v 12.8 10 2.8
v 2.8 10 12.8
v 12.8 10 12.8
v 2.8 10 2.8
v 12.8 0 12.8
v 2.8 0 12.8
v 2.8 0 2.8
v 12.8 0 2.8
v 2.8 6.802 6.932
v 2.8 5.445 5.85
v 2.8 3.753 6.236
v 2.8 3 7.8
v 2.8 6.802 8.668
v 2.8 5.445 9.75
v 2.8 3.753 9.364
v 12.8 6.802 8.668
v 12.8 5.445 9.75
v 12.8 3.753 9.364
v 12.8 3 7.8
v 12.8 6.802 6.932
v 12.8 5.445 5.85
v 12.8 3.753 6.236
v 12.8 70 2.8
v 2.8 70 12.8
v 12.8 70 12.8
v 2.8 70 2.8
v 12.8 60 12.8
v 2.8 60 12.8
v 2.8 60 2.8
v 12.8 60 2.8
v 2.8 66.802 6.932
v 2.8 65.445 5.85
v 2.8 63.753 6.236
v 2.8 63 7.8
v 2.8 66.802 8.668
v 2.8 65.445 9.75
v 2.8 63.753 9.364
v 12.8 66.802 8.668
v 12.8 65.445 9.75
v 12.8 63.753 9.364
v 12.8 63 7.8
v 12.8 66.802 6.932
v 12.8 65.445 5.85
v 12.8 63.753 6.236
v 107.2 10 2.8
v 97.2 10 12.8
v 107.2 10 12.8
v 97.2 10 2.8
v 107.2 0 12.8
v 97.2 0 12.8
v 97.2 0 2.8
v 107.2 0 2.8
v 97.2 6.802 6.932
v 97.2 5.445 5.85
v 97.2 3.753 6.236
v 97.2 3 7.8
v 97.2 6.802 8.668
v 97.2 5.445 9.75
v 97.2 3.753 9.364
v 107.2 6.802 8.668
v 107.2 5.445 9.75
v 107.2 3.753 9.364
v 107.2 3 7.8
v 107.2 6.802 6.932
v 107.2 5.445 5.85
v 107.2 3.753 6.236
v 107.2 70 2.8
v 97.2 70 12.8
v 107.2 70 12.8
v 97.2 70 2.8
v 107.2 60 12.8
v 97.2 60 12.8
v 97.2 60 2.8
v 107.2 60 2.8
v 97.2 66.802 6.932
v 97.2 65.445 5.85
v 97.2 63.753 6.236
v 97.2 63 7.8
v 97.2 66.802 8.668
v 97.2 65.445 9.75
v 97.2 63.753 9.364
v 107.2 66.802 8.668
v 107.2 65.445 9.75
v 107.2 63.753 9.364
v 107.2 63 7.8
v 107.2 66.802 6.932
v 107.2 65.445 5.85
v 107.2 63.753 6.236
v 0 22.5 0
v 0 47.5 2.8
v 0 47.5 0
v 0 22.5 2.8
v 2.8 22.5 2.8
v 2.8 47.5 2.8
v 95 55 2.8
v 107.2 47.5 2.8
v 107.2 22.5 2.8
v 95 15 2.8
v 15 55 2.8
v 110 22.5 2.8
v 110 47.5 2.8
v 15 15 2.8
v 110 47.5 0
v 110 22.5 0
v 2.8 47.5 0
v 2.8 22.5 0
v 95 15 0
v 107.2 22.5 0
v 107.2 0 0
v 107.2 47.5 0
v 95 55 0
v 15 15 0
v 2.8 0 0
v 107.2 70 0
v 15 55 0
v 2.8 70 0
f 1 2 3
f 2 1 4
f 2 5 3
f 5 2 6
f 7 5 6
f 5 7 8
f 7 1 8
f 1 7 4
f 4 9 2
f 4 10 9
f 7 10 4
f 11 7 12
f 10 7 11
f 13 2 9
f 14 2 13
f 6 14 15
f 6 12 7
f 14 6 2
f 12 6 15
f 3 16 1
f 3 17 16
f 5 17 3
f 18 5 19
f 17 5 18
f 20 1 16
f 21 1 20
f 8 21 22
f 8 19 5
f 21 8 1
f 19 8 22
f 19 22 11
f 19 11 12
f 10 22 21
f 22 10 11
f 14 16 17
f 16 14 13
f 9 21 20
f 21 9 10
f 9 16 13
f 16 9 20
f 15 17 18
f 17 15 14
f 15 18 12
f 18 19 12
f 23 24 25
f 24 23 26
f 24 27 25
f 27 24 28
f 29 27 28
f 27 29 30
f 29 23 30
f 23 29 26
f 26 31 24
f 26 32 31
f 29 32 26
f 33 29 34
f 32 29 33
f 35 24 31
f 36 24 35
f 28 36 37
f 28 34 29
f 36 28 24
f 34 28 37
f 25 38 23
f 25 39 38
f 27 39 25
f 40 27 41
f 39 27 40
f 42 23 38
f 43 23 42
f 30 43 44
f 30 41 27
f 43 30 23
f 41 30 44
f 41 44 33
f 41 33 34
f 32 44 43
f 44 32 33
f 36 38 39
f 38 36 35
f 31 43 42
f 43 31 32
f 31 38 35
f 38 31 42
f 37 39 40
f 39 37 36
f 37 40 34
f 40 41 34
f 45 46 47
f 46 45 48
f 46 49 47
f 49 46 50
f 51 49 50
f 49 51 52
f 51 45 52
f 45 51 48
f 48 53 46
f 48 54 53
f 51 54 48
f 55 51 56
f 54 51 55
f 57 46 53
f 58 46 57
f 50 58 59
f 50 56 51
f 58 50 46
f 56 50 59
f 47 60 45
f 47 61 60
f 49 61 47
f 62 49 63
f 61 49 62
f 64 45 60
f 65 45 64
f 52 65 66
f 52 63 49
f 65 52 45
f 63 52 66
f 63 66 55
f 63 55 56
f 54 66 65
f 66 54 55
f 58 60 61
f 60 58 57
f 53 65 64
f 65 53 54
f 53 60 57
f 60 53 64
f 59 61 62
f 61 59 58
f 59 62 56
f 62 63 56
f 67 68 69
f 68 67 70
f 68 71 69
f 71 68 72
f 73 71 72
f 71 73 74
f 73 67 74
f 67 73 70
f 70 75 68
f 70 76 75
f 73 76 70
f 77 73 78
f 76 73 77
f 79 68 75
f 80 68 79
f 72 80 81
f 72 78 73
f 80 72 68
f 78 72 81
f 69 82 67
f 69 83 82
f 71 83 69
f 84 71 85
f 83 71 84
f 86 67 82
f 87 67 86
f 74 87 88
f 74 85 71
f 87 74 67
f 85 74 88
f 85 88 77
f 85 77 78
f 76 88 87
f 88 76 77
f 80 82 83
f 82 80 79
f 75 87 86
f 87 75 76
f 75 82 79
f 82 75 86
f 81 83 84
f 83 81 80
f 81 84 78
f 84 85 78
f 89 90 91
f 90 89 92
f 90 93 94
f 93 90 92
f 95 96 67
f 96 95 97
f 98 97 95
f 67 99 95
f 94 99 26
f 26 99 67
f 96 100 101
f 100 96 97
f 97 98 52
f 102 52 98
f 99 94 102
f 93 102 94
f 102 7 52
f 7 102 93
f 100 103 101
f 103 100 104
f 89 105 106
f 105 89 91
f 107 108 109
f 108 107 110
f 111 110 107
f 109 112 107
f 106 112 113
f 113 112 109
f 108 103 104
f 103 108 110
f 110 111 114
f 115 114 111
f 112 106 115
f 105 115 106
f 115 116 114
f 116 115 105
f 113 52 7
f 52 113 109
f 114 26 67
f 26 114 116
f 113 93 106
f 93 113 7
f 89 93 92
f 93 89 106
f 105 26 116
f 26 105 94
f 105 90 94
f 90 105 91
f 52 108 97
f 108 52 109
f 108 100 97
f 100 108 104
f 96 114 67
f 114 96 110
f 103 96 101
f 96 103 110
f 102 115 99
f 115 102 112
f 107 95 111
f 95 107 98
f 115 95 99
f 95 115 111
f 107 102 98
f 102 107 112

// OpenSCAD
// file: modules.scad
thickness = 3;
ultrasonic_hole_radius = 8.25;
ultrasonic_hole_distance = 25.5;
pin_side = 2.5;



module roundExtract(pos_x, pos_y, radius) {
     translate([pos_x, pos_y,0]) 
		cylinder(h = thickness, r = radius);
 }

module squareExtract(pos_x, pos_y, width, length) {
	translate([pos_x, pos_y,0])
		cube(size = [width, length, thickness]);
}

module ultrasonicExtract(pos_x, pos_y, rotation) {
	translate([pos_x,pos_y,0]){
		rotate([0,0,rotation]) {
			union(){ 
				translate([0,0,0])
					cylinder(h = thickness, r = ultrasonic_hole_radius);
				translate([ultrasonic_hole_distance,0,0])
					cylinder(h = thickness, r = ultrasonic_hole_radius);
				translate([ultrasonic_hole_distance/2-3.75,-9,0])
					cube(size = [7.5, 2, thickness]);
				translate([ultrasonic_hole_distance/2-4.75,6,0])
					cube(size = [10, 4, thickness]);
			}
		}
	}
}

module IMUExtract(pos_x,pos_y, rotation) {
	translate([pos_x,pos_y,0]){
		rotate([0,0,rotation]) {
			union(){ 
				roundExtract(13,3,2);
				roundExtract(13,25,2);
				squareExtract(0,0,pin_side,pin_side*11);
			}
		}
	}
}

module stepperExtraction(pos_x,pos_y, rotation) {
	translate([pos_x,pos_y,0]){
		rotate([0,0,rotation]) {
			union(){ 
				roundExtract(14,9,2);
				roundExtract(10,33,2);
				squareExtract(1.5,1.5,pin_side,pin_side*3);//3 pins
				squareExtract(20-pin_side-1.5,1.5,pin_side,pin_side*2);//2 pin
				squareExtract(20-pin_side-1.5,32,pin_side,pin_side*4);//4 pins
			}
		}
	}

}

module screwAttach(pos_x, pos_y, pos_z, width, length, height, rotation) {
translate([pos_x,pos_y, pos_z]){
		rotate([0,0,rotation]) {
			difference(){ 
				cube(width,length,height);
				translate([width/2, 0,height/2]) {
					rotate([270,0,0]) {
						cylinder(h = 10, r=2);
					}
				}
				
			}
		}
	}


}
// main file
include <modules.scad>;

width = 110;
height = 70;
thickness = 2.8;
plate_fill_width = 22.5;
raspberry_hole_radius = 1.3;


difference() {
	cube(size = [width, height, thickness],center=false);

	squareExtract(0,0, thickness, plate_fill_width);		
	squareExtract(0,height-plate_fill_width,thickness, plate_fill_width);
	squareExtract(width-thickness,0,thickness, plate_fill_width);	
	squareExtract(width-thickness,height-plate_fill_width,thickness, plate_fill_width);
	squareExtract(15,15,80, 40);
}
	screwAttach(thickness, 10, thickness, 10, 10, 10, 270);	
	screwAttach(thickness, 70, thickness, 10, 10, 10, 270);
	screwAttach(width-thickness - 10, 10, thickness, 10, 10, 10, 270);
	screwAttach(width-thickness-10, 70, thickness, 10, 10, 10, 270);
